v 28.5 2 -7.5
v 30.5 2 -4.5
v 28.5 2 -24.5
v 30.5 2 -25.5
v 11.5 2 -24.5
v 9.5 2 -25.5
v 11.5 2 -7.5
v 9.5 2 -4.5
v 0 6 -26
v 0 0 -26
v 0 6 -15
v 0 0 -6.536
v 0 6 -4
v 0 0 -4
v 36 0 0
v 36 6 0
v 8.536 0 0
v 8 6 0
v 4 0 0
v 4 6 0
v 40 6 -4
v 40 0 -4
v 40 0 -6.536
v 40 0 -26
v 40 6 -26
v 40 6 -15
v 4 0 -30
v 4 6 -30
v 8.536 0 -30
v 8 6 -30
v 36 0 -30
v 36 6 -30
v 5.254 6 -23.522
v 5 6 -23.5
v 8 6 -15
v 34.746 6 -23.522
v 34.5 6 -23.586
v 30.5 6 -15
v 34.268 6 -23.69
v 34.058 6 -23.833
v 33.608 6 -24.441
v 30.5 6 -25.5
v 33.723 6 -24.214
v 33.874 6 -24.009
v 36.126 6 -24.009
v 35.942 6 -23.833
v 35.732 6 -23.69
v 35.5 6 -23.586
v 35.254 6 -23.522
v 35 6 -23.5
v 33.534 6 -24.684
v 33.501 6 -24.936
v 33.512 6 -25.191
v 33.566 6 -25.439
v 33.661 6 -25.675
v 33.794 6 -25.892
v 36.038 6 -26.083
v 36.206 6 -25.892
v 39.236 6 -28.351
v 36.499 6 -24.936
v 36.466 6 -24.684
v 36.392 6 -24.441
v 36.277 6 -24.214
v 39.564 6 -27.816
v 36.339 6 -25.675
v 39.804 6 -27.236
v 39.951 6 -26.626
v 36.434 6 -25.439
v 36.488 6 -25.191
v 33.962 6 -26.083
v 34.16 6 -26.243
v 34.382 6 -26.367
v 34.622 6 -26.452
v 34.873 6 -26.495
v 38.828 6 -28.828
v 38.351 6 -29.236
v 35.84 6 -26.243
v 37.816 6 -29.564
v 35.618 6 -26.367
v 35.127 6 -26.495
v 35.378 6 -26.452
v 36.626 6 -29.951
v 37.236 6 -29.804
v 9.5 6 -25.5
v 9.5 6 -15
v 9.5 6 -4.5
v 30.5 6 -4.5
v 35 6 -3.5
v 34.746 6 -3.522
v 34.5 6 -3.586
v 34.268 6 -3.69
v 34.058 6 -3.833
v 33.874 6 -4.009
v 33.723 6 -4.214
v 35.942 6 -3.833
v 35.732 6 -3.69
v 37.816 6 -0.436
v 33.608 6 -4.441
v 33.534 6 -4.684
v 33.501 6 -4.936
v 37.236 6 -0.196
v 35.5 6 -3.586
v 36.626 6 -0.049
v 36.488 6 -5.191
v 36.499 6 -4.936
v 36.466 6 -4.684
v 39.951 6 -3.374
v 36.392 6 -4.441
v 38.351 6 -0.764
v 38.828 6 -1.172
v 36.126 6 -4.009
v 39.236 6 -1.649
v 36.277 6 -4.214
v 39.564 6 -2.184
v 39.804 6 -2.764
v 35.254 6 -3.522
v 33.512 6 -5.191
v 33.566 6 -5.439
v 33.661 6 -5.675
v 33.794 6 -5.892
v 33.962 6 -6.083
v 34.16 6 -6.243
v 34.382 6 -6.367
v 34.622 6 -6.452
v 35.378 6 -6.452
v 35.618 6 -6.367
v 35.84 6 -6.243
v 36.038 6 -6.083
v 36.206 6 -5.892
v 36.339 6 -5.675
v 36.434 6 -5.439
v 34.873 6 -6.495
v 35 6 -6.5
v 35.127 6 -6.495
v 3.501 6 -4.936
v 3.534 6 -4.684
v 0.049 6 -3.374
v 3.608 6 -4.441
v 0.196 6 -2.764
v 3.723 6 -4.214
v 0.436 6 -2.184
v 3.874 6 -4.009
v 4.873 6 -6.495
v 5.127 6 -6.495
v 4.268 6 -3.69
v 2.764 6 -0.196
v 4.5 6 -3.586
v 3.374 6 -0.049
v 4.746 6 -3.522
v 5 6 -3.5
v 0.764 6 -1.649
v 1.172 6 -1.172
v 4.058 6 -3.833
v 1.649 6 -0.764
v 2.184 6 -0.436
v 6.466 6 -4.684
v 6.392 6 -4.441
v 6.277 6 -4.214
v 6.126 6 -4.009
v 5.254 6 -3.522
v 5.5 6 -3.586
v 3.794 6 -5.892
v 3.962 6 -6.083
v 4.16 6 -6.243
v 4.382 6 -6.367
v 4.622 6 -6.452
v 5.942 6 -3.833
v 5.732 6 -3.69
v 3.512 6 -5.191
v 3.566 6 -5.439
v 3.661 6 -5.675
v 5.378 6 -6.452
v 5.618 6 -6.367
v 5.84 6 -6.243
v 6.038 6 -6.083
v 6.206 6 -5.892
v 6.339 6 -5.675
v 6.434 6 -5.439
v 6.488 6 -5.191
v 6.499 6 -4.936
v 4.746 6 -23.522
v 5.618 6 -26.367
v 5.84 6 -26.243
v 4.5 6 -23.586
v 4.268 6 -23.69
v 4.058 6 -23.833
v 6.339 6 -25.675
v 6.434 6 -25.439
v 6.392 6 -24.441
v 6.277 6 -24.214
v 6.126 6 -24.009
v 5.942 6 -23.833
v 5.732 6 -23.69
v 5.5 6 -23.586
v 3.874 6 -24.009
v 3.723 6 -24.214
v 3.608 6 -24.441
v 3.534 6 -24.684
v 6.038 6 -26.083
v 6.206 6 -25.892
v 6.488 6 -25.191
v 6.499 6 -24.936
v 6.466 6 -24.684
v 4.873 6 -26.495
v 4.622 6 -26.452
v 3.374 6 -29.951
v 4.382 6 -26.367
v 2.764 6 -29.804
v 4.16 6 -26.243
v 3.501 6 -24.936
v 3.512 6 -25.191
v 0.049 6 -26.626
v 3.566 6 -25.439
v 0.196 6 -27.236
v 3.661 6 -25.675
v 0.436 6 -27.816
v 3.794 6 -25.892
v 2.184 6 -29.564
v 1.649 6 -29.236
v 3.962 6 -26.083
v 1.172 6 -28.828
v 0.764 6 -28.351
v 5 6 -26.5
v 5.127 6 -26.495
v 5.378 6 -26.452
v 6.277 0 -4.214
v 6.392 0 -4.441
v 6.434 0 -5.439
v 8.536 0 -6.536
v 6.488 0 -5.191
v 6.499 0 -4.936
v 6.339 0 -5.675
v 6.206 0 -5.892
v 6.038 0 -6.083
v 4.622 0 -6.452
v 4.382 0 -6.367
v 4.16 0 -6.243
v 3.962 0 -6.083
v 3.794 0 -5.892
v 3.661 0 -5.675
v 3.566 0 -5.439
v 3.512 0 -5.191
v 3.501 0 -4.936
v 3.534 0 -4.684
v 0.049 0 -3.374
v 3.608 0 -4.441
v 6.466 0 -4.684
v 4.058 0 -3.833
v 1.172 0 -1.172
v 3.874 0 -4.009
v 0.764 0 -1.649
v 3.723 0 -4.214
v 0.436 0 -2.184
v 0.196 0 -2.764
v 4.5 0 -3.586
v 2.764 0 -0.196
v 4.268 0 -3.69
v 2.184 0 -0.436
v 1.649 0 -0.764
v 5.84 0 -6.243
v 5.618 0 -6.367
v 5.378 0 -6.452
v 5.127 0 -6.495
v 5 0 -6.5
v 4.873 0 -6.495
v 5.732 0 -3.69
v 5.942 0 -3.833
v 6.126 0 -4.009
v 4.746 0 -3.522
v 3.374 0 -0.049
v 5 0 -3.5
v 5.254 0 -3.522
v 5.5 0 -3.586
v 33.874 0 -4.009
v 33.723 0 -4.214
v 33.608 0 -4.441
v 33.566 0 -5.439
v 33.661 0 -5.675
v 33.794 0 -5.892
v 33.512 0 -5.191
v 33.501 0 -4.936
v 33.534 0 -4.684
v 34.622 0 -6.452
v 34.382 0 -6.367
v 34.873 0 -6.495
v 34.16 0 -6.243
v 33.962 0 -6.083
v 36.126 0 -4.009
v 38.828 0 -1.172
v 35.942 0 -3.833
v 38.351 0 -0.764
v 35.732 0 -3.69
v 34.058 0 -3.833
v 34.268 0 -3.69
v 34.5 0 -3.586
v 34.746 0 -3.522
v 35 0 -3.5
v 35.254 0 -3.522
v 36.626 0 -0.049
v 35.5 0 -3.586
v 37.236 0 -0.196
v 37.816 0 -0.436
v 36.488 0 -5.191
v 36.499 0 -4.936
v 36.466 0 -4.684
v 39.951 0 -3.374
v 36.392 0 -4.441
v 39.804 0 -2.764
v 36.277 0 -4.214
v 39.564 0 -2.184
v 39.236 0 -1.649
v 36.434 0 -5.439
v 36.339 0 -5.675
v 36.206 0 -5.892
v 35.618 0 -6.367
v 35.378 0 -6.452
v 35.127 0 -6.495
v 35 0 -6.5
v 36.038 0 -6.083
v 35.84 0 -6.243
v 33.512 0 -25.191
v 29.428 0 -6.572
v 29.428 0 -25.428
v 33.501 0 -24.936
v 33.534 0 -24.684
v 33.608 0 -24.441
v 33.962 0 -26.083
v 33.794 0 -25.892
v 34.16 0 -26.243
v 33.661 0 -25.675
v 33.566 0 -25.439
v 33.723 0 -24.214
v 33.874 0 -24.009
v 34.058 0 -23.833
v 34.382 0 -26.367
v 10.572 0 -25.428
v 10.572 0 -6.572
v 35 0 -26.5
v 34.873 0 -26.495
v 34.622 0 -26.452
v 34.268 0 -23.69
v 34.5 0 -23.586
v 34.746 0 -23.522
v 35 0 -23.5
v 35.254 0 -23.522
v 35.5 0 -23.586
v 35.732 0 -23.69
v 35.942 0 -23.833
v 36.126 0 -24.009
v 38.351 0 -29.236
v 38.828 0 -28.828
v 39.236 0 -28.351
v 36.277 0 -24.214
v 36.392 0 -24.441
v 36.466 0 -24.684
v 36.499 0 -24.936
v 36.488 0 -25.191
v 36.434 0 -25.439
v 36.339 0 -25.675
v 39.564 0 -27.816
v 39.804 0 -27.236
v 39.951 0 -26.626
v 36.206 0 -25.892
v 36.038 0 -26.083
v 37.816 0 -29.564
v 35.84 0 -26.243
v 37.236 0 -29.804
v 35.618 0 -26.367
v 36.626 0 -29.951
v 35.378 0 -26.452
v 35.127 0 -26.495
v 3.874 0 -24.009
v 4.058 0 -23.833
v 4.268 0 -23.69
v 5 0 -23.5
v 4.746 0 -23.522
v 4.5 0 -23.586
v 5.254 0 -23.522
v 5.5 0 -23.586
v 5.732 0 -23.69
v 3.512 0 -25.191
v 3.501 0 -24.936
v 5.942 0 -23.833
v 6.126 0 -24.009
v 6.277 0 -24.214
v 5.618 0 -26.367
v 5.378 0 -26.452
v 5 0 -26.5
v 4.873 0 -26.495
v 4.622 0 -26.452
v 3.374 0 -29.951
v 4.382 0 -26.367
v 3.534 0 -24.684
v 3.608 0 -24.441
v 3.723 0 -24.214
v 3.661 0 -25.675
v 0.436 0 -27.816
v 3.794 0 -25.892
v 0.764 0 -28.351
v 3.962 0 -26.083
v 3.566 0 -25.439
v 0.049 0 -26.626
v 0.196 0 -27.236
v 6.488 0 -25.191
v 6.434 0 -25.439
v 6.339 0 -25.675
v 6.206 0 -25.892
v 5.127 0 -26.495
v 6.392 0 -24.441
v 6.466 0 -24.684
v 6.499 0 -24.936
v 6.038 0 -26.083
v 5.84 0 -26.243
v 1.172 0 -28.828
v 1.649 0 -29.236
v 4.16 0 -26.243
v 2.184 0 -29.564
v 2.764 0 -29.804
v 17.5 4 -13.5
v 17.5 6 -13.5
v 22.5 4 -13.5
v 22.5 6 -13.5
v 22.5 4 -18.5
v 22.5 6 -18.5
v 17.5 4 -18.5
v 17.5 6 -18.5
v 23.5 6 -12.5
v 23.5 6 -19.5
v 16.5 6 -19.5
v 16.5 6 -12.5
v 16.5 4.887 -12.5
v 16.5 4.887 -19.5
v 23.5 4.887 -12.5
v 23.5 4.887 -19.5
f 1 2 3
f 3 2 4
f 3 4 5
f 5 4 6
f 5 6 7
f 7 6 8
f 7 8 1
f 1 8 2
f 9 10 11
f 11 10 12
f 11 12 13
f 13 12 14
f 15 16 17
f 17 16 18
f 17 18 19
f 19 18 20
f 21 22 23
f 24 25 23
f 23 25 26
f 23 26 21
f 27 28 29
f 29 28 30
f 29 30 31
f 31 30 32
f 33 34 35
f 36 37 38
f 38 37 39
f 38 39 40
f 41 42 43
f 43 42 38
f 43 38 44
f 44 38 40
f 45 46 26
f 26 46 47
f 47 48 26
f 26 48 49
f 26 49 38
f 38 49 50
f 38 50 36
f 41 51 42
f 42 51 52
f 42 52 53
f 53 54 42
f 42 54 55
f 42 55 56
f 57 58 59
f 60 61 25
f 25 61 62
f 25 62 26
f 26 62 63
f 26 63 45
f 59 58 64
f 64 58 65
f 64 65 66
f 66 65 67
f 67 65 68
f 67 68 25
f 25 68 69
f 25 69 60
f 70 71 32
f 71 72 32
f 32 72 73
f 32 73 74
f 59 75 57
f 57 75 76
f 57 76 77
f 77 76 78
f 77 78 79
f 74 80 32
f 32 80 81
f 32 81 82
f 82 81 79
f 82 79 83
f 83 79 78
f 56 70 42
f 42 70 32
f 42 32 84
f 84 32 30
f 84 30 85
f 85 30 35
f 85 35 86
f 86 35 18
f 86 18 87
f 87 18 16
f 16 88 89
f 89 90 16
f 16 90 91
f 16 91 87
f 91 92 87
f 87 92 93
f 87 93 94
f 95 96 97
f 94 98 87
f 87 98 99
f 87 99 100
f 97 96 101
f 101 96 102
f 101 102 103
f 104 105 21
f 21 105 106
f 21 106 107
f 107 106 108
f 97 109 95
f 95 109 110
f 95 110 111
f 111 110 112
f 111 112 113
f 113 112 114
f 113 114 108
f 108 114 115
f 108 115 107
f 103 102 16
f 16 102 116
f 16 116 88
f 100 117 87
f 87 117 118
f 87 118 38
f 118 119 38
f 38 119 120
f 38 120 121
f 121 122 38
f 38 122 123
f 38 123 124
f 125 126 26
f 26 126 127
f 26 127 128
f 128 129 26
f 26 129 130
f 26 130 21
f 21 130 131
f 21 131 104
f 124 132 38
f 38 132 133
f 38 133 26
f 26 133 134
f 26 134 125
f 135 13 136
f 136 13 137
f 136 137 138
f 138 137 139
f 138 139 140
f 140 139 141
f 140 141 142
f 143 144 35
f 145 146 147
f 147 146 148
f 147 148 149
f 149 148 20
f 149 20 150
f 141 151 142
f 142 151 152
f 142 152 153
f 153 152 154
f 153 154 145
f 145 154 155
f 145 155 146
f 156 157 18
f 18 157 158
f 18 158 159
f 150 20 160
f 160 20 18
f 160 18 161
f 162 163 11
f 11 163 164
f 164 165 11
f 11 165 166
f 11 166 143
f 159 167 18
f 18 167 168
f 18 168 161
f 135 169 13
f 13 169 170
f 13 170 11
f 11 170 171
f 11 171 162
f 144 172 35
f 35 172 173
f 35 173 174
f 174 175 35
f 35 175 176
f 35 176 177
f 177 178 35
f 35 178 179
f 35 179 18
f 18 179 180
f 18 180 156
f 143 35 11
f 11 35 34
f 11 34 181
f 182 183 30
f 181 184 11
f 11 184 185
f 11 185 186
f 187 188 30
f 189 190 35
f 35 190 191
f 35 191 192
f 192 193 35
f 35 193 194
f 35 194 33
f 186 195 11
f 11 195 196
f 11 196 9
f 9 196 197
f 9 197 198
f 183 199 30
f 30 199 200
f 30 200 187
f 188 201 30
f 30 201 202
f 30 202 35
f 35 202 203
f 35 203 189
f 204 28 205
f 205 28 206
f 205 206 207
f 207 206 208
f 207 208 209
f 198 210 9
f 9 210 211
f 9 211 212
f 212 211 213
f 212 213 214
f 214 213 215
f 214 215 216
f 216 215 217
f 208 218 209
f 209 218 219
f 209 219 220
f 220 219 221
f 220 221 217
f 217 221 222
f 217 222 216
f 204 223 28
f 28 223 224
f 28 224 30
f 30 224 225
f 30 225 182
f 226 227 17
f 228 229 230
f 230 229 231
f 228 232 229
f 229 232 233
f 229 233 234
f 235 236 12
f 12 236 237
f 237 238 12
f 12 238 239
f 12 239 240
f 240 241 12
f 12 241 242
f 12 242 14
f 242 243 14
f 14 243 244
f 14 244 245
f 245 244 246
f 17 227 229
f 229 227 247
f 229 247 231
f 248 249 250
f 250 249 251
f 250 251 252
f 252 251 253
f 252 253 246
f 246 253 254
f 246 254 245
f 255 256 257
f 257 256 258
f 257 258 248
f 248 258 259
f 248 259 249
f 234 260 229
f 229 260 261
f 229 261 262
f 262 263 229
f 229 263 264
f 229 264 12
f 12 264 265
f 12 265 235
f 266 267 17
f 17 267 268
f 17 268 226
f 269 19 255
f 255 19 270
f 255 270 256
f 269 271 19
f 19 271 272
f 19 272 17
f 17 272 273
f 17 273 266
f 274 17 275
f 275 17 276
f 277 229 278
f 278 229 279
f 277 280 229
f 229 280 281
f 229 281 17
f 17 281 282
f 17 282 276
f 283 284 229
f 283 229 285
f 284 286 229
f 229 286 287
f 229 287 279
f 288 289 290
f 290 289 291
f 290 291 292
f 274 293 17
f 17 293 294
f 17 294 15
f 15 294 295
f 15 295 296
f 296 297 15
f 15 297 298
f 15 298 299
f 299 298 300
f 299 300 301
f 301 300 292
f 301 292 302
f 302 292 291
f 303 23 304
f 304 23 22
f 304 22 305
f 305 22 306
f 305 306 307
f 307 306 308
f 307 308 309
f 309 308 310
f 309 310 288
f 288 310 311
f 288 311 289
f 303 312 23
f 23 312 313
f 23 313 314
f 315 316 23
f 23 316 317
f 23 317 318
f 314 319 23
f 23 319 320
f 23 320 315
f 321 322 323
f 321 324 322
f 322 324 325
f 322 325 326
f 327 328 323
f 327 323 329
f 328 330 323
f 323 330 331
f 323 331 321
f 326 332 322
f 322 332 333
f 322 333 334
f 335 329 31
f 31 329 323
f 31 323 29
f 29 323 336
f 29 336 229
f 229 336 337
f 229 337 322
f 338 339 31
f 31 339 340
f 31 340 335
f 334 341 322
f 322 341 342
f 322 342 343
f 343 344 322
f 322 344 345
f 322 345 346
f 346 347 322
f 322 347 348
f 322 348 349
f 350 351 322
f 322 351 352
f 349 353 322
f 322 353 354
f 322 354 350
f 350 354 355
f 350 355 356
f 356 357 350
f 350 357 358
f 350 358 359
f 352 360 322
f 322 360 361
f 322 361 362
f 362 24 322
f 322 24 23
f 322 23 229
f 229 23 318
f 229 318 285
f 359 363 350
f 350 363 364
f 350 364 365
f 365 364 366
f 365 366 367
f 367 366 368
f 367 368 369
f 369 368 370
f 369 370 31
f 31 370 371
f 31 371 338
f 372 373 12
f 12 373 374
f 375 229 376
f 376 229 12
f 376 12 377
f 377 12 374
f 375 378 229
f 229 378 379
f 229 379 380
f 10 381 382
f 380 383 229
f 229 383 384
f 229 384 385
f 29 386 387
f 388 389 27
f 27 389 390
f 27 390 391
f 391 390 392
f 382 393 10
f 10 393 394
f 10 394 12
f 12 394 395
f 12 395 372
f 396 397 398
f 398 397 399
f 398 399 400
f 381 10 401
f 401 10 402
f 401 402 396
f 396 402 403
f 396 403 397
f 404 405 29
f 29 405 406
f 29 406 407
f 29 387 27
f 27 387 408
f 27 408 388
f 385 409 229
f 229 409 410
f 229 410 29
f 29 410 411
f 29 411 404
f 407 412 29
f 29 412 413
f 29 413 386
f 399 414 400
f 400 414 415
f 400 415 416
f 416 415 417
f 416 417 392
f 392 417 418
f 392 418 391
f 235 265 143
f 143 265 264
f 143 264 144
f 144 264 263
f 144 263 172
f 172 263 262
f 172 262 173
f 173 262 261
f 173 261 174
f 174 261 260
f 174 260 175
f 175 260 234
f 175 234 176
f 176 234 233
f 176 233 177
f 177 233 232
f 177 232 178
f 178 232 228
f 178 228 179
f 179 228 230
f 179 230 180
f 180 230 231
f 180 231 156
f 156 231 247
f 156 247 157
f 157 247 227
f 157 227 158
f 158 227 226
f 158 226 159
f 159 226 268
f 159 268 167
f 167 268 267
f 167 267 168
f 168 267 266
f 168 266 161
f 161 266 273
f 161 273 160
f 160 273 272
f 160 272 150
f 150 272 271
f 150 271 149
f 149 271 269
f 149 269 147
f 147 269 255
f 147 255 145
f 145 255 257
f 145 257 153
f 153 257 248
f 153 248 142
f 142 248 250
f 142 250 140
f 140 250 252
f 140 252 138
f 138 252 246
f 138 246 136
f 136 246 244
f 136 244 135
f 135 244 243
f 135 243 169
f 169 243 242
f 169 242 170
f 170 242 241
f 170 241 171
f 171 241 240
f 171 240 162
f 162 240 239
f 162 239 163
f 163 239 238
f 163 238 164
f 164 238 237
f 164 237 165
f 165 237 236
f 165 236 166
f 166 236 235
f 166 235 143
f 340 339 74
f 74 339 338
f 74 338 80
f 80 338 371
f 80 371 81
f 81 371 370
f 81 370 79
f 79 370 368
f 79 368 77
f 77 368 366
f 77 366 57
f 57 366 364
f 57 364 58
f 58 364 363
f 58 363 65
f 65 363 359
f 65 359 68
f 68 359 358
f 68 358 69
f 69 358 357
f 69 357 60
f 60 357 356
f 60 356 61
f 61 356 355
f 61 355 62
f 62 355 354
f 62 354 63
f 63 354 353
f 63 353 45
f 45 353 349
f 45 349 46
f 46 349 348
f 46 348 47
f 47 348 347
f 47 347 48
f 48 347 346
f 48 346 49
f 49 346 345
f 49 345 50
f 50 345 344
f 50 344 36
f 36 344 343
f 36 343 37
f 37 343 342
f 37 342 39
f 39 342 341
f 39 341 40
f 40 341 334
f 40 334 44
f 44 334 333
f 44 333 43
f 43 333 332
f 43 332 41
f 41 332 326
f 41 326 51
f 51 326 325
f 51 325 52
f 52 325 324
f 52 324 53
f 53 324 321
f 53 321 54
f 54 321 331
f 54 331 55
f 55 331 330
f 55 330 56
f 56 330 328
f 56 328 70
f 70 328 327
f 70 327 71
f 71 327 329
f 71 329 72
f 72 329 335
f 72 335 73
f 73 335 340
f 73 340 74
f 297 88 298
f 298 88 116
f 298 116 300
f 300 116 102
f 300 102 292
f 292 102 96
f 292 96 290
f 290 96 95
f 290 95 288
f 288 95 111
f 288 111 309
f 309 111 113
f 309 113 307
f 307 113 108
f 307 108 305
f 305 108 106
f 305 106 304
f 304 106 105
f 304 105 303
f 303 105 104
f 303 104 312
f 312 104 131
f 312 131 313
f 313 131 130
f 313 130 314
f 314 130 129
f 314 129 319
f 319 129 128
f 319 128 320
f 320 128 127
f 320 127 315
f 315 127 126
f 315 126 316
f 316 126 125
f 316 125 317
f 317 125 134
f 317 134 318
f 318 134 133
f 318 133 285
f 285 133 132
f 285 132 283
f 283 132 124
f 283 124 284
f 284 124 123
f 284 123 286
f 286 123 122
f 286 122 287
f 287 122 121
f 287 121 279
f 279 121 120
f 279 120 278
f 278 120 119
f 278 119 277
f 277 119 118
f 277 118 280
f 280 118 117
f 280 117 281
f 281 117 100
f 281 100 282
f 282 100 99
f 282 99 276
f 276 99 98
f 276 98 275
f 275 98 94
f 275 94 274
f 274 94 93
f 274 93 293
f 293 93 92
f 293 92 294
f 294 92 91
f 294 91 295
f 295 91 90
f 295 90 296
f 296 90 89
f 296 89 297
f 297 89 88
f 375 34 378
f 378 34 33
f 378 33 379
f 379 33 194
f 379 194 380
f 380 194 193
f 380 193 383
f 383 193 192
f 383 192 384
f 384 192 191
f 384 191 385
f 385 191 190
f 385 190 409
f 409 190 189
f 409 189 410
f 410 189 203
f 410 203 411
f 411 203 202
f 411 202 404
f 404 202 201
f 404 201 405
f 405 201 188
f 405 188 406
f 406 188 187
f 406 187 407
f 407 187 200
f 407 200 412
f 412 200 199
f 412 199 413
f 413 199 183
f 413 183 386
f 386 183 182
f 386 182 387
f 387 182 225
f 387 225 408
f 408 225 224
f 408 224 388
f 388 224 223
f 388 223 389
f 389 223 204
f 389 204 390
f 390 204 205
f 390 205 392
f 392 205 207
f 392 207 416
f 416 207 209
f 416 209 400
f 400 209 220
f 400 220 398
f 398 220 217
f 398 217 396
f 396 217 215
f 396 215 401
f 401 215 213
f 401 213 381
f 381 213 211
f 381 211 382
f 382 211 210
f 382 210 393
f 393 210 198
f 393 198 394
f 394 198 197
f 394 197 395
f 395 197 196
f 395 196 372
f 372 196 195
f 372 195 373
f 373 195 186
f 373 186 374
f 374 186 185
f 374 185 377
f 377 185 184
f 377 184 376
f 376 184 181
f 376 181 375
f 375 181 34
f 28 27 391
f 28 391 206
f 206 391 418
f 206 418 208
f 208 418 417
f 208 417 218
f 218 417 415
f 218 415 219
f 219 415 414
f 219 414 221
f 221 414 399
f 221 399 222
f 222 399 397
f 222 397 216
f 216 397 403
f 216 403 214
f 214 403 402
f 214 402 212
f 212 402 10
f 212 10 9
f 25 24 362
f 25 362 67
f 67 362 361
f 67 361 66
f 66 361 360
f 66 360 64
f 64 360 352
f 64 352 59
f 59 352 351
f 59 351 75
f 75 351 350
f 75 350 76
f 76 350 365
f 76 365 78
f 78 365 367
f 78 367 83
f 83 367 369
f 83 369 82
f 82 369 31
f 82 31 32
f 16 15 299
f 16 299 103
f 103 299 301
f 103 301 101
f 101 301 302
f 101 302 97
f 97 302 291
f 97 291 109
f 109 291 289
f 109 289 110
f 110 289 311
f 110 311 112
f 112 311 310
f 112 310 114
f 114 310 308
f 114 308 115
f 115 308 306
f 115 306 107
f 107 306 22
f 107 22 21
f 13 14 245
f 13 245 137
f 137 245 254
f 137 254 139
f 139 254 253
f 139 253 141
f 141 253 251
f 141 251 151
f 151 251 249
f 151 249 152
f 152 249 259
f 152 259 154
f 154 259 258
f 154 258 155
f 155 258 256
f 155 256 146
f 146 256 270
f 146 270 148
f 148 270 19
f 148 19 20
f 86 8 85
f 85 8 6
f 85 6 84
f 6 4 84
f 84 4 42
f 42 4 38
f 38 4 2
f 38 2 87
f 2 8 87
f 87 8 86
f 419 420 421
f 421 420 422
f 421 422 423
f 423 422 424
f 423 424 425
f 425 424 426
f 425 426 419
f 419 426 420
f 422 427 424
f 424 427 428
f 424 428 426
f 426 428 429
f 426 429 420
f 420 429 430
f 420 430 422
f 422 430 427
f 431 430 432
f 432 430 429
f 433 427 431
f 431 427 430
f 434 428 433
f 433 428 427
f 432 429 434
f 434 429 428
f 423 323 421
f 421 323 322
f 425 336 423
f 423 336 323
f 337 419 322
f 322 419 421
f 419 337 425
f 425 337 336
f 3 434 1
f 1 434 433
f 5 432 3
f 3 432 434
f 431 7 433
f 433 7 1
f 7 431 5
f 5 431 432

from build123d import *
from OCP.BRepFilletAPI import BRepFilletAPI_MakeChamfer

# Parameters (mm, degrees)
SKETCH1_W           = 40
SKETCH1_H           = 30
BOSS_EXTRUDE1_DEPTH = 6
SKETCH2_R           = 1.5
CUT_EXTRUDE1_DEPTH  = 6
FILLET1_R           = 4
SKETCH3_W           = 21
SKETCH3_H           = 21
CUT_EXTRUDE2_DEPTH  = 4
SKETCH6_W           = 5
SKETCH6_H           = 5
CUT_EXTRUDE3_DEPTH  = 2
SKETCH7_W           = 7
SKETCH7_H           = 7
SKETCH7_W_2         = 5
SKETCH7_H_2         = 5
BOSS_EXTRUDE2_DEPTH = 4
CHAMFER1_SIZE       = 4
CHAMFER1_SIZE2      = 6.92820323
CHAMFER2_SIZE       = 5
CHAMFER2_SIZE2      = 2.886751346


with BuildPart() as part:
    # Sketch1 → Boss-Extrude1 (new body)
    with BuildSketch(Plane(origin=(0, 0, 0), x_dir=(1, 0, 0), z_dir=(0, 1, 0))):
        with Locations((20, 15)):
            Rectangle(SKETCH1_W, SKETCH1_H)
    extrude(amount=BOSS_EXTRUDE1_DEPTH)

    # Sketch2 → Cut-Extrude1 (cut)
    with BuildSketch(Plane(origin=(0, 6, 0), x_dir=(1, 0, 0), z_dir=(0, 1, 0))):
        with Locations(Location((5, 5, 0), (0, 0, 270))):
            Circle(SKETCH2_R)
        with Locations(Location((5, 25, 0), (0, 0, 90))):
            Circle(SKETCH2_R)
        with Locations(Location((35, 5, 0), (0, 0, 90))):
            Circle(SKETCH2_R)
        with Locations(Location((35, 25, 0), (0, 0, 270))):
            Circle(SKETCH2_R)
    extrude(amount=-CUT_EXTRUDE1_DEPTH, mode=Mode.SUBTRACT)

    # Fillet1
    fillet1_edges = [part.edges().sort_by_distance(p)[0] for p in [
        (0, 3, -30),
        (40, 3, -30),
        (40, 3, 0),
        (0, 3, 0),
    ]]
    fillet(fillet1_edges, radius=FILLET1_R)

    # Sketch3 → Cut-Extrude2 (cut)
    with BuildSketch(Plane(origin=(0, 6, 0), x_dir=(1, 0, 0), z_dir=(0, 1, 0))):
        with Locations((20, 15)):
            Rectangle(SKETCH3_W, SKETCH3_H)
    extrude(amount=-CUT_EXTRUDE2_DEPTH, mode=Mode.SUBTRACT)

    # Sketch6 → Cut-Extrude3 (cut)
    with BuildSketch(Plane(origin=(0, 2, 0), x_dir=(1, 0, 0), z_dir=(0, 1, 0))):
        with Locations((20, 16)):
            Rectangle(SKETCH6_W, SKETCH6_H)
    extrude(amount=-CUT_EXTRUDE3_DEPTH, mode=Mode.SUBTRACT)

    # Sketch7 → Boss-Extrude2 (add)
    with BuildSketch(Plane(origin=(0, 2, 0), x_dir=(1, 0, 0), z_dir=(0, 1, 0))):
        with Locations((20, 16)):
            Rectangle(SKETCH7_W, SKETCH7_H)
        with Locations((20, 16)):
            Rectangle(SKETCH7_W_2, SKETCH7_H_2, mode=Mode.SUBTRACT)
    extrude(amount=BOSS_EXTRUDE2_DEPTH)

    # Chamfer1: one chamfer whose edges measure the first distance from different faces: ONE call of the kernel's chamfer builder (chamfer() names one face for all edges)
    chamfer1_edges_1 = [part.edges().sort_by_distance(p)[0] for p in [
        (20, 0, -13.5),
    ]]
    chamfer1_side_1 = [part.faces().sort_by_distance(p)[0] for p in [
        (20, 3, -13.5),
    ]]
    chamfer1_edges_2 = [part.edges().sort_by_distance(p)[0] for p in [
        (22.5, 0, -16),
    ]]
    chamfer1_side_2 = [part.faces().sort_by_distance(p)[0] for p in [
        (22.5, 3, -16),
    ]]
    chamfer1_edges_3 = [part.edges().sort_by_distance(p)[0] for p in [
        (20, 0, -18.5),
    ]]
    chamfer1_side_3 = [part.faces().sort_by_distance(p)[0] for p in [
        (20, 3, -18.5),
    ]]
    chamfer1_edges_4 = [part.edges().sort_by_distance(p)[0] for p in [
        (17.5, 0, -16),
    ]]
    chamfer1_side_4 = [part.faces().sort_by_distance(p)[0] for p in [
        (17.5, 3, -16),
    ]]
    chamfer1 = BRepFilletAPI_MakeChamfer(part.part.solid().wrapped)
    for e in chamfer1_edges_1:
        chamfer1.Add(CHAMFER1_SIZE, CHAMFER1_SIZE2, e.wrapped, chamfer1_side_1[0].wrapped)  # the first distance lies on this face
    for e in chamfer1_edges_2:
        chamfer1.Add(CHAMFER1_SIZE, CHAMFER1_SIZE2, e.wrapped, chamfer1_side_2[0].wrapped)  # the first distance lies on this face
    for e in chamfer1_edges_3:
        chamfer1.Add(CHAMFER1_SIZE, CHAMFER1_SIZE2, e.wrapped, chamfer1_side_3[0].wrapped)  # the first distance lies on this face
    for e in chamfer1_edges_4:
        chamfer1.Add(CHAMFER1_SIZE, CHAMFER1_SIZE2, e.wrapped, chamfer1_side_4[0].wrapped)  # the first distance lies on this face
    add(Compound.cast(chamfer1.Shape()), mode=Mode.REPLACE)

    # Chamfer2
    chamfer2_edges = [part.edges().sort_by_distance(p)[0] for p in [
        (16.5, 2, -16),
        (20, 2, -12.5),
        (23.5, 2, -16),
        (20, 2, -19.5),
    ]]
    chamfer2_side = [part.faces().sort_by_distance(p)[0] for p in [
        (20, 2, -4.796984848),
    ]]
    chamfer(chamfer2_edges, length=CHAMFER2_SIZE, length2=CHAMFER2_SIZE2, reference=chamfer2_side[0])


solid = part.part
